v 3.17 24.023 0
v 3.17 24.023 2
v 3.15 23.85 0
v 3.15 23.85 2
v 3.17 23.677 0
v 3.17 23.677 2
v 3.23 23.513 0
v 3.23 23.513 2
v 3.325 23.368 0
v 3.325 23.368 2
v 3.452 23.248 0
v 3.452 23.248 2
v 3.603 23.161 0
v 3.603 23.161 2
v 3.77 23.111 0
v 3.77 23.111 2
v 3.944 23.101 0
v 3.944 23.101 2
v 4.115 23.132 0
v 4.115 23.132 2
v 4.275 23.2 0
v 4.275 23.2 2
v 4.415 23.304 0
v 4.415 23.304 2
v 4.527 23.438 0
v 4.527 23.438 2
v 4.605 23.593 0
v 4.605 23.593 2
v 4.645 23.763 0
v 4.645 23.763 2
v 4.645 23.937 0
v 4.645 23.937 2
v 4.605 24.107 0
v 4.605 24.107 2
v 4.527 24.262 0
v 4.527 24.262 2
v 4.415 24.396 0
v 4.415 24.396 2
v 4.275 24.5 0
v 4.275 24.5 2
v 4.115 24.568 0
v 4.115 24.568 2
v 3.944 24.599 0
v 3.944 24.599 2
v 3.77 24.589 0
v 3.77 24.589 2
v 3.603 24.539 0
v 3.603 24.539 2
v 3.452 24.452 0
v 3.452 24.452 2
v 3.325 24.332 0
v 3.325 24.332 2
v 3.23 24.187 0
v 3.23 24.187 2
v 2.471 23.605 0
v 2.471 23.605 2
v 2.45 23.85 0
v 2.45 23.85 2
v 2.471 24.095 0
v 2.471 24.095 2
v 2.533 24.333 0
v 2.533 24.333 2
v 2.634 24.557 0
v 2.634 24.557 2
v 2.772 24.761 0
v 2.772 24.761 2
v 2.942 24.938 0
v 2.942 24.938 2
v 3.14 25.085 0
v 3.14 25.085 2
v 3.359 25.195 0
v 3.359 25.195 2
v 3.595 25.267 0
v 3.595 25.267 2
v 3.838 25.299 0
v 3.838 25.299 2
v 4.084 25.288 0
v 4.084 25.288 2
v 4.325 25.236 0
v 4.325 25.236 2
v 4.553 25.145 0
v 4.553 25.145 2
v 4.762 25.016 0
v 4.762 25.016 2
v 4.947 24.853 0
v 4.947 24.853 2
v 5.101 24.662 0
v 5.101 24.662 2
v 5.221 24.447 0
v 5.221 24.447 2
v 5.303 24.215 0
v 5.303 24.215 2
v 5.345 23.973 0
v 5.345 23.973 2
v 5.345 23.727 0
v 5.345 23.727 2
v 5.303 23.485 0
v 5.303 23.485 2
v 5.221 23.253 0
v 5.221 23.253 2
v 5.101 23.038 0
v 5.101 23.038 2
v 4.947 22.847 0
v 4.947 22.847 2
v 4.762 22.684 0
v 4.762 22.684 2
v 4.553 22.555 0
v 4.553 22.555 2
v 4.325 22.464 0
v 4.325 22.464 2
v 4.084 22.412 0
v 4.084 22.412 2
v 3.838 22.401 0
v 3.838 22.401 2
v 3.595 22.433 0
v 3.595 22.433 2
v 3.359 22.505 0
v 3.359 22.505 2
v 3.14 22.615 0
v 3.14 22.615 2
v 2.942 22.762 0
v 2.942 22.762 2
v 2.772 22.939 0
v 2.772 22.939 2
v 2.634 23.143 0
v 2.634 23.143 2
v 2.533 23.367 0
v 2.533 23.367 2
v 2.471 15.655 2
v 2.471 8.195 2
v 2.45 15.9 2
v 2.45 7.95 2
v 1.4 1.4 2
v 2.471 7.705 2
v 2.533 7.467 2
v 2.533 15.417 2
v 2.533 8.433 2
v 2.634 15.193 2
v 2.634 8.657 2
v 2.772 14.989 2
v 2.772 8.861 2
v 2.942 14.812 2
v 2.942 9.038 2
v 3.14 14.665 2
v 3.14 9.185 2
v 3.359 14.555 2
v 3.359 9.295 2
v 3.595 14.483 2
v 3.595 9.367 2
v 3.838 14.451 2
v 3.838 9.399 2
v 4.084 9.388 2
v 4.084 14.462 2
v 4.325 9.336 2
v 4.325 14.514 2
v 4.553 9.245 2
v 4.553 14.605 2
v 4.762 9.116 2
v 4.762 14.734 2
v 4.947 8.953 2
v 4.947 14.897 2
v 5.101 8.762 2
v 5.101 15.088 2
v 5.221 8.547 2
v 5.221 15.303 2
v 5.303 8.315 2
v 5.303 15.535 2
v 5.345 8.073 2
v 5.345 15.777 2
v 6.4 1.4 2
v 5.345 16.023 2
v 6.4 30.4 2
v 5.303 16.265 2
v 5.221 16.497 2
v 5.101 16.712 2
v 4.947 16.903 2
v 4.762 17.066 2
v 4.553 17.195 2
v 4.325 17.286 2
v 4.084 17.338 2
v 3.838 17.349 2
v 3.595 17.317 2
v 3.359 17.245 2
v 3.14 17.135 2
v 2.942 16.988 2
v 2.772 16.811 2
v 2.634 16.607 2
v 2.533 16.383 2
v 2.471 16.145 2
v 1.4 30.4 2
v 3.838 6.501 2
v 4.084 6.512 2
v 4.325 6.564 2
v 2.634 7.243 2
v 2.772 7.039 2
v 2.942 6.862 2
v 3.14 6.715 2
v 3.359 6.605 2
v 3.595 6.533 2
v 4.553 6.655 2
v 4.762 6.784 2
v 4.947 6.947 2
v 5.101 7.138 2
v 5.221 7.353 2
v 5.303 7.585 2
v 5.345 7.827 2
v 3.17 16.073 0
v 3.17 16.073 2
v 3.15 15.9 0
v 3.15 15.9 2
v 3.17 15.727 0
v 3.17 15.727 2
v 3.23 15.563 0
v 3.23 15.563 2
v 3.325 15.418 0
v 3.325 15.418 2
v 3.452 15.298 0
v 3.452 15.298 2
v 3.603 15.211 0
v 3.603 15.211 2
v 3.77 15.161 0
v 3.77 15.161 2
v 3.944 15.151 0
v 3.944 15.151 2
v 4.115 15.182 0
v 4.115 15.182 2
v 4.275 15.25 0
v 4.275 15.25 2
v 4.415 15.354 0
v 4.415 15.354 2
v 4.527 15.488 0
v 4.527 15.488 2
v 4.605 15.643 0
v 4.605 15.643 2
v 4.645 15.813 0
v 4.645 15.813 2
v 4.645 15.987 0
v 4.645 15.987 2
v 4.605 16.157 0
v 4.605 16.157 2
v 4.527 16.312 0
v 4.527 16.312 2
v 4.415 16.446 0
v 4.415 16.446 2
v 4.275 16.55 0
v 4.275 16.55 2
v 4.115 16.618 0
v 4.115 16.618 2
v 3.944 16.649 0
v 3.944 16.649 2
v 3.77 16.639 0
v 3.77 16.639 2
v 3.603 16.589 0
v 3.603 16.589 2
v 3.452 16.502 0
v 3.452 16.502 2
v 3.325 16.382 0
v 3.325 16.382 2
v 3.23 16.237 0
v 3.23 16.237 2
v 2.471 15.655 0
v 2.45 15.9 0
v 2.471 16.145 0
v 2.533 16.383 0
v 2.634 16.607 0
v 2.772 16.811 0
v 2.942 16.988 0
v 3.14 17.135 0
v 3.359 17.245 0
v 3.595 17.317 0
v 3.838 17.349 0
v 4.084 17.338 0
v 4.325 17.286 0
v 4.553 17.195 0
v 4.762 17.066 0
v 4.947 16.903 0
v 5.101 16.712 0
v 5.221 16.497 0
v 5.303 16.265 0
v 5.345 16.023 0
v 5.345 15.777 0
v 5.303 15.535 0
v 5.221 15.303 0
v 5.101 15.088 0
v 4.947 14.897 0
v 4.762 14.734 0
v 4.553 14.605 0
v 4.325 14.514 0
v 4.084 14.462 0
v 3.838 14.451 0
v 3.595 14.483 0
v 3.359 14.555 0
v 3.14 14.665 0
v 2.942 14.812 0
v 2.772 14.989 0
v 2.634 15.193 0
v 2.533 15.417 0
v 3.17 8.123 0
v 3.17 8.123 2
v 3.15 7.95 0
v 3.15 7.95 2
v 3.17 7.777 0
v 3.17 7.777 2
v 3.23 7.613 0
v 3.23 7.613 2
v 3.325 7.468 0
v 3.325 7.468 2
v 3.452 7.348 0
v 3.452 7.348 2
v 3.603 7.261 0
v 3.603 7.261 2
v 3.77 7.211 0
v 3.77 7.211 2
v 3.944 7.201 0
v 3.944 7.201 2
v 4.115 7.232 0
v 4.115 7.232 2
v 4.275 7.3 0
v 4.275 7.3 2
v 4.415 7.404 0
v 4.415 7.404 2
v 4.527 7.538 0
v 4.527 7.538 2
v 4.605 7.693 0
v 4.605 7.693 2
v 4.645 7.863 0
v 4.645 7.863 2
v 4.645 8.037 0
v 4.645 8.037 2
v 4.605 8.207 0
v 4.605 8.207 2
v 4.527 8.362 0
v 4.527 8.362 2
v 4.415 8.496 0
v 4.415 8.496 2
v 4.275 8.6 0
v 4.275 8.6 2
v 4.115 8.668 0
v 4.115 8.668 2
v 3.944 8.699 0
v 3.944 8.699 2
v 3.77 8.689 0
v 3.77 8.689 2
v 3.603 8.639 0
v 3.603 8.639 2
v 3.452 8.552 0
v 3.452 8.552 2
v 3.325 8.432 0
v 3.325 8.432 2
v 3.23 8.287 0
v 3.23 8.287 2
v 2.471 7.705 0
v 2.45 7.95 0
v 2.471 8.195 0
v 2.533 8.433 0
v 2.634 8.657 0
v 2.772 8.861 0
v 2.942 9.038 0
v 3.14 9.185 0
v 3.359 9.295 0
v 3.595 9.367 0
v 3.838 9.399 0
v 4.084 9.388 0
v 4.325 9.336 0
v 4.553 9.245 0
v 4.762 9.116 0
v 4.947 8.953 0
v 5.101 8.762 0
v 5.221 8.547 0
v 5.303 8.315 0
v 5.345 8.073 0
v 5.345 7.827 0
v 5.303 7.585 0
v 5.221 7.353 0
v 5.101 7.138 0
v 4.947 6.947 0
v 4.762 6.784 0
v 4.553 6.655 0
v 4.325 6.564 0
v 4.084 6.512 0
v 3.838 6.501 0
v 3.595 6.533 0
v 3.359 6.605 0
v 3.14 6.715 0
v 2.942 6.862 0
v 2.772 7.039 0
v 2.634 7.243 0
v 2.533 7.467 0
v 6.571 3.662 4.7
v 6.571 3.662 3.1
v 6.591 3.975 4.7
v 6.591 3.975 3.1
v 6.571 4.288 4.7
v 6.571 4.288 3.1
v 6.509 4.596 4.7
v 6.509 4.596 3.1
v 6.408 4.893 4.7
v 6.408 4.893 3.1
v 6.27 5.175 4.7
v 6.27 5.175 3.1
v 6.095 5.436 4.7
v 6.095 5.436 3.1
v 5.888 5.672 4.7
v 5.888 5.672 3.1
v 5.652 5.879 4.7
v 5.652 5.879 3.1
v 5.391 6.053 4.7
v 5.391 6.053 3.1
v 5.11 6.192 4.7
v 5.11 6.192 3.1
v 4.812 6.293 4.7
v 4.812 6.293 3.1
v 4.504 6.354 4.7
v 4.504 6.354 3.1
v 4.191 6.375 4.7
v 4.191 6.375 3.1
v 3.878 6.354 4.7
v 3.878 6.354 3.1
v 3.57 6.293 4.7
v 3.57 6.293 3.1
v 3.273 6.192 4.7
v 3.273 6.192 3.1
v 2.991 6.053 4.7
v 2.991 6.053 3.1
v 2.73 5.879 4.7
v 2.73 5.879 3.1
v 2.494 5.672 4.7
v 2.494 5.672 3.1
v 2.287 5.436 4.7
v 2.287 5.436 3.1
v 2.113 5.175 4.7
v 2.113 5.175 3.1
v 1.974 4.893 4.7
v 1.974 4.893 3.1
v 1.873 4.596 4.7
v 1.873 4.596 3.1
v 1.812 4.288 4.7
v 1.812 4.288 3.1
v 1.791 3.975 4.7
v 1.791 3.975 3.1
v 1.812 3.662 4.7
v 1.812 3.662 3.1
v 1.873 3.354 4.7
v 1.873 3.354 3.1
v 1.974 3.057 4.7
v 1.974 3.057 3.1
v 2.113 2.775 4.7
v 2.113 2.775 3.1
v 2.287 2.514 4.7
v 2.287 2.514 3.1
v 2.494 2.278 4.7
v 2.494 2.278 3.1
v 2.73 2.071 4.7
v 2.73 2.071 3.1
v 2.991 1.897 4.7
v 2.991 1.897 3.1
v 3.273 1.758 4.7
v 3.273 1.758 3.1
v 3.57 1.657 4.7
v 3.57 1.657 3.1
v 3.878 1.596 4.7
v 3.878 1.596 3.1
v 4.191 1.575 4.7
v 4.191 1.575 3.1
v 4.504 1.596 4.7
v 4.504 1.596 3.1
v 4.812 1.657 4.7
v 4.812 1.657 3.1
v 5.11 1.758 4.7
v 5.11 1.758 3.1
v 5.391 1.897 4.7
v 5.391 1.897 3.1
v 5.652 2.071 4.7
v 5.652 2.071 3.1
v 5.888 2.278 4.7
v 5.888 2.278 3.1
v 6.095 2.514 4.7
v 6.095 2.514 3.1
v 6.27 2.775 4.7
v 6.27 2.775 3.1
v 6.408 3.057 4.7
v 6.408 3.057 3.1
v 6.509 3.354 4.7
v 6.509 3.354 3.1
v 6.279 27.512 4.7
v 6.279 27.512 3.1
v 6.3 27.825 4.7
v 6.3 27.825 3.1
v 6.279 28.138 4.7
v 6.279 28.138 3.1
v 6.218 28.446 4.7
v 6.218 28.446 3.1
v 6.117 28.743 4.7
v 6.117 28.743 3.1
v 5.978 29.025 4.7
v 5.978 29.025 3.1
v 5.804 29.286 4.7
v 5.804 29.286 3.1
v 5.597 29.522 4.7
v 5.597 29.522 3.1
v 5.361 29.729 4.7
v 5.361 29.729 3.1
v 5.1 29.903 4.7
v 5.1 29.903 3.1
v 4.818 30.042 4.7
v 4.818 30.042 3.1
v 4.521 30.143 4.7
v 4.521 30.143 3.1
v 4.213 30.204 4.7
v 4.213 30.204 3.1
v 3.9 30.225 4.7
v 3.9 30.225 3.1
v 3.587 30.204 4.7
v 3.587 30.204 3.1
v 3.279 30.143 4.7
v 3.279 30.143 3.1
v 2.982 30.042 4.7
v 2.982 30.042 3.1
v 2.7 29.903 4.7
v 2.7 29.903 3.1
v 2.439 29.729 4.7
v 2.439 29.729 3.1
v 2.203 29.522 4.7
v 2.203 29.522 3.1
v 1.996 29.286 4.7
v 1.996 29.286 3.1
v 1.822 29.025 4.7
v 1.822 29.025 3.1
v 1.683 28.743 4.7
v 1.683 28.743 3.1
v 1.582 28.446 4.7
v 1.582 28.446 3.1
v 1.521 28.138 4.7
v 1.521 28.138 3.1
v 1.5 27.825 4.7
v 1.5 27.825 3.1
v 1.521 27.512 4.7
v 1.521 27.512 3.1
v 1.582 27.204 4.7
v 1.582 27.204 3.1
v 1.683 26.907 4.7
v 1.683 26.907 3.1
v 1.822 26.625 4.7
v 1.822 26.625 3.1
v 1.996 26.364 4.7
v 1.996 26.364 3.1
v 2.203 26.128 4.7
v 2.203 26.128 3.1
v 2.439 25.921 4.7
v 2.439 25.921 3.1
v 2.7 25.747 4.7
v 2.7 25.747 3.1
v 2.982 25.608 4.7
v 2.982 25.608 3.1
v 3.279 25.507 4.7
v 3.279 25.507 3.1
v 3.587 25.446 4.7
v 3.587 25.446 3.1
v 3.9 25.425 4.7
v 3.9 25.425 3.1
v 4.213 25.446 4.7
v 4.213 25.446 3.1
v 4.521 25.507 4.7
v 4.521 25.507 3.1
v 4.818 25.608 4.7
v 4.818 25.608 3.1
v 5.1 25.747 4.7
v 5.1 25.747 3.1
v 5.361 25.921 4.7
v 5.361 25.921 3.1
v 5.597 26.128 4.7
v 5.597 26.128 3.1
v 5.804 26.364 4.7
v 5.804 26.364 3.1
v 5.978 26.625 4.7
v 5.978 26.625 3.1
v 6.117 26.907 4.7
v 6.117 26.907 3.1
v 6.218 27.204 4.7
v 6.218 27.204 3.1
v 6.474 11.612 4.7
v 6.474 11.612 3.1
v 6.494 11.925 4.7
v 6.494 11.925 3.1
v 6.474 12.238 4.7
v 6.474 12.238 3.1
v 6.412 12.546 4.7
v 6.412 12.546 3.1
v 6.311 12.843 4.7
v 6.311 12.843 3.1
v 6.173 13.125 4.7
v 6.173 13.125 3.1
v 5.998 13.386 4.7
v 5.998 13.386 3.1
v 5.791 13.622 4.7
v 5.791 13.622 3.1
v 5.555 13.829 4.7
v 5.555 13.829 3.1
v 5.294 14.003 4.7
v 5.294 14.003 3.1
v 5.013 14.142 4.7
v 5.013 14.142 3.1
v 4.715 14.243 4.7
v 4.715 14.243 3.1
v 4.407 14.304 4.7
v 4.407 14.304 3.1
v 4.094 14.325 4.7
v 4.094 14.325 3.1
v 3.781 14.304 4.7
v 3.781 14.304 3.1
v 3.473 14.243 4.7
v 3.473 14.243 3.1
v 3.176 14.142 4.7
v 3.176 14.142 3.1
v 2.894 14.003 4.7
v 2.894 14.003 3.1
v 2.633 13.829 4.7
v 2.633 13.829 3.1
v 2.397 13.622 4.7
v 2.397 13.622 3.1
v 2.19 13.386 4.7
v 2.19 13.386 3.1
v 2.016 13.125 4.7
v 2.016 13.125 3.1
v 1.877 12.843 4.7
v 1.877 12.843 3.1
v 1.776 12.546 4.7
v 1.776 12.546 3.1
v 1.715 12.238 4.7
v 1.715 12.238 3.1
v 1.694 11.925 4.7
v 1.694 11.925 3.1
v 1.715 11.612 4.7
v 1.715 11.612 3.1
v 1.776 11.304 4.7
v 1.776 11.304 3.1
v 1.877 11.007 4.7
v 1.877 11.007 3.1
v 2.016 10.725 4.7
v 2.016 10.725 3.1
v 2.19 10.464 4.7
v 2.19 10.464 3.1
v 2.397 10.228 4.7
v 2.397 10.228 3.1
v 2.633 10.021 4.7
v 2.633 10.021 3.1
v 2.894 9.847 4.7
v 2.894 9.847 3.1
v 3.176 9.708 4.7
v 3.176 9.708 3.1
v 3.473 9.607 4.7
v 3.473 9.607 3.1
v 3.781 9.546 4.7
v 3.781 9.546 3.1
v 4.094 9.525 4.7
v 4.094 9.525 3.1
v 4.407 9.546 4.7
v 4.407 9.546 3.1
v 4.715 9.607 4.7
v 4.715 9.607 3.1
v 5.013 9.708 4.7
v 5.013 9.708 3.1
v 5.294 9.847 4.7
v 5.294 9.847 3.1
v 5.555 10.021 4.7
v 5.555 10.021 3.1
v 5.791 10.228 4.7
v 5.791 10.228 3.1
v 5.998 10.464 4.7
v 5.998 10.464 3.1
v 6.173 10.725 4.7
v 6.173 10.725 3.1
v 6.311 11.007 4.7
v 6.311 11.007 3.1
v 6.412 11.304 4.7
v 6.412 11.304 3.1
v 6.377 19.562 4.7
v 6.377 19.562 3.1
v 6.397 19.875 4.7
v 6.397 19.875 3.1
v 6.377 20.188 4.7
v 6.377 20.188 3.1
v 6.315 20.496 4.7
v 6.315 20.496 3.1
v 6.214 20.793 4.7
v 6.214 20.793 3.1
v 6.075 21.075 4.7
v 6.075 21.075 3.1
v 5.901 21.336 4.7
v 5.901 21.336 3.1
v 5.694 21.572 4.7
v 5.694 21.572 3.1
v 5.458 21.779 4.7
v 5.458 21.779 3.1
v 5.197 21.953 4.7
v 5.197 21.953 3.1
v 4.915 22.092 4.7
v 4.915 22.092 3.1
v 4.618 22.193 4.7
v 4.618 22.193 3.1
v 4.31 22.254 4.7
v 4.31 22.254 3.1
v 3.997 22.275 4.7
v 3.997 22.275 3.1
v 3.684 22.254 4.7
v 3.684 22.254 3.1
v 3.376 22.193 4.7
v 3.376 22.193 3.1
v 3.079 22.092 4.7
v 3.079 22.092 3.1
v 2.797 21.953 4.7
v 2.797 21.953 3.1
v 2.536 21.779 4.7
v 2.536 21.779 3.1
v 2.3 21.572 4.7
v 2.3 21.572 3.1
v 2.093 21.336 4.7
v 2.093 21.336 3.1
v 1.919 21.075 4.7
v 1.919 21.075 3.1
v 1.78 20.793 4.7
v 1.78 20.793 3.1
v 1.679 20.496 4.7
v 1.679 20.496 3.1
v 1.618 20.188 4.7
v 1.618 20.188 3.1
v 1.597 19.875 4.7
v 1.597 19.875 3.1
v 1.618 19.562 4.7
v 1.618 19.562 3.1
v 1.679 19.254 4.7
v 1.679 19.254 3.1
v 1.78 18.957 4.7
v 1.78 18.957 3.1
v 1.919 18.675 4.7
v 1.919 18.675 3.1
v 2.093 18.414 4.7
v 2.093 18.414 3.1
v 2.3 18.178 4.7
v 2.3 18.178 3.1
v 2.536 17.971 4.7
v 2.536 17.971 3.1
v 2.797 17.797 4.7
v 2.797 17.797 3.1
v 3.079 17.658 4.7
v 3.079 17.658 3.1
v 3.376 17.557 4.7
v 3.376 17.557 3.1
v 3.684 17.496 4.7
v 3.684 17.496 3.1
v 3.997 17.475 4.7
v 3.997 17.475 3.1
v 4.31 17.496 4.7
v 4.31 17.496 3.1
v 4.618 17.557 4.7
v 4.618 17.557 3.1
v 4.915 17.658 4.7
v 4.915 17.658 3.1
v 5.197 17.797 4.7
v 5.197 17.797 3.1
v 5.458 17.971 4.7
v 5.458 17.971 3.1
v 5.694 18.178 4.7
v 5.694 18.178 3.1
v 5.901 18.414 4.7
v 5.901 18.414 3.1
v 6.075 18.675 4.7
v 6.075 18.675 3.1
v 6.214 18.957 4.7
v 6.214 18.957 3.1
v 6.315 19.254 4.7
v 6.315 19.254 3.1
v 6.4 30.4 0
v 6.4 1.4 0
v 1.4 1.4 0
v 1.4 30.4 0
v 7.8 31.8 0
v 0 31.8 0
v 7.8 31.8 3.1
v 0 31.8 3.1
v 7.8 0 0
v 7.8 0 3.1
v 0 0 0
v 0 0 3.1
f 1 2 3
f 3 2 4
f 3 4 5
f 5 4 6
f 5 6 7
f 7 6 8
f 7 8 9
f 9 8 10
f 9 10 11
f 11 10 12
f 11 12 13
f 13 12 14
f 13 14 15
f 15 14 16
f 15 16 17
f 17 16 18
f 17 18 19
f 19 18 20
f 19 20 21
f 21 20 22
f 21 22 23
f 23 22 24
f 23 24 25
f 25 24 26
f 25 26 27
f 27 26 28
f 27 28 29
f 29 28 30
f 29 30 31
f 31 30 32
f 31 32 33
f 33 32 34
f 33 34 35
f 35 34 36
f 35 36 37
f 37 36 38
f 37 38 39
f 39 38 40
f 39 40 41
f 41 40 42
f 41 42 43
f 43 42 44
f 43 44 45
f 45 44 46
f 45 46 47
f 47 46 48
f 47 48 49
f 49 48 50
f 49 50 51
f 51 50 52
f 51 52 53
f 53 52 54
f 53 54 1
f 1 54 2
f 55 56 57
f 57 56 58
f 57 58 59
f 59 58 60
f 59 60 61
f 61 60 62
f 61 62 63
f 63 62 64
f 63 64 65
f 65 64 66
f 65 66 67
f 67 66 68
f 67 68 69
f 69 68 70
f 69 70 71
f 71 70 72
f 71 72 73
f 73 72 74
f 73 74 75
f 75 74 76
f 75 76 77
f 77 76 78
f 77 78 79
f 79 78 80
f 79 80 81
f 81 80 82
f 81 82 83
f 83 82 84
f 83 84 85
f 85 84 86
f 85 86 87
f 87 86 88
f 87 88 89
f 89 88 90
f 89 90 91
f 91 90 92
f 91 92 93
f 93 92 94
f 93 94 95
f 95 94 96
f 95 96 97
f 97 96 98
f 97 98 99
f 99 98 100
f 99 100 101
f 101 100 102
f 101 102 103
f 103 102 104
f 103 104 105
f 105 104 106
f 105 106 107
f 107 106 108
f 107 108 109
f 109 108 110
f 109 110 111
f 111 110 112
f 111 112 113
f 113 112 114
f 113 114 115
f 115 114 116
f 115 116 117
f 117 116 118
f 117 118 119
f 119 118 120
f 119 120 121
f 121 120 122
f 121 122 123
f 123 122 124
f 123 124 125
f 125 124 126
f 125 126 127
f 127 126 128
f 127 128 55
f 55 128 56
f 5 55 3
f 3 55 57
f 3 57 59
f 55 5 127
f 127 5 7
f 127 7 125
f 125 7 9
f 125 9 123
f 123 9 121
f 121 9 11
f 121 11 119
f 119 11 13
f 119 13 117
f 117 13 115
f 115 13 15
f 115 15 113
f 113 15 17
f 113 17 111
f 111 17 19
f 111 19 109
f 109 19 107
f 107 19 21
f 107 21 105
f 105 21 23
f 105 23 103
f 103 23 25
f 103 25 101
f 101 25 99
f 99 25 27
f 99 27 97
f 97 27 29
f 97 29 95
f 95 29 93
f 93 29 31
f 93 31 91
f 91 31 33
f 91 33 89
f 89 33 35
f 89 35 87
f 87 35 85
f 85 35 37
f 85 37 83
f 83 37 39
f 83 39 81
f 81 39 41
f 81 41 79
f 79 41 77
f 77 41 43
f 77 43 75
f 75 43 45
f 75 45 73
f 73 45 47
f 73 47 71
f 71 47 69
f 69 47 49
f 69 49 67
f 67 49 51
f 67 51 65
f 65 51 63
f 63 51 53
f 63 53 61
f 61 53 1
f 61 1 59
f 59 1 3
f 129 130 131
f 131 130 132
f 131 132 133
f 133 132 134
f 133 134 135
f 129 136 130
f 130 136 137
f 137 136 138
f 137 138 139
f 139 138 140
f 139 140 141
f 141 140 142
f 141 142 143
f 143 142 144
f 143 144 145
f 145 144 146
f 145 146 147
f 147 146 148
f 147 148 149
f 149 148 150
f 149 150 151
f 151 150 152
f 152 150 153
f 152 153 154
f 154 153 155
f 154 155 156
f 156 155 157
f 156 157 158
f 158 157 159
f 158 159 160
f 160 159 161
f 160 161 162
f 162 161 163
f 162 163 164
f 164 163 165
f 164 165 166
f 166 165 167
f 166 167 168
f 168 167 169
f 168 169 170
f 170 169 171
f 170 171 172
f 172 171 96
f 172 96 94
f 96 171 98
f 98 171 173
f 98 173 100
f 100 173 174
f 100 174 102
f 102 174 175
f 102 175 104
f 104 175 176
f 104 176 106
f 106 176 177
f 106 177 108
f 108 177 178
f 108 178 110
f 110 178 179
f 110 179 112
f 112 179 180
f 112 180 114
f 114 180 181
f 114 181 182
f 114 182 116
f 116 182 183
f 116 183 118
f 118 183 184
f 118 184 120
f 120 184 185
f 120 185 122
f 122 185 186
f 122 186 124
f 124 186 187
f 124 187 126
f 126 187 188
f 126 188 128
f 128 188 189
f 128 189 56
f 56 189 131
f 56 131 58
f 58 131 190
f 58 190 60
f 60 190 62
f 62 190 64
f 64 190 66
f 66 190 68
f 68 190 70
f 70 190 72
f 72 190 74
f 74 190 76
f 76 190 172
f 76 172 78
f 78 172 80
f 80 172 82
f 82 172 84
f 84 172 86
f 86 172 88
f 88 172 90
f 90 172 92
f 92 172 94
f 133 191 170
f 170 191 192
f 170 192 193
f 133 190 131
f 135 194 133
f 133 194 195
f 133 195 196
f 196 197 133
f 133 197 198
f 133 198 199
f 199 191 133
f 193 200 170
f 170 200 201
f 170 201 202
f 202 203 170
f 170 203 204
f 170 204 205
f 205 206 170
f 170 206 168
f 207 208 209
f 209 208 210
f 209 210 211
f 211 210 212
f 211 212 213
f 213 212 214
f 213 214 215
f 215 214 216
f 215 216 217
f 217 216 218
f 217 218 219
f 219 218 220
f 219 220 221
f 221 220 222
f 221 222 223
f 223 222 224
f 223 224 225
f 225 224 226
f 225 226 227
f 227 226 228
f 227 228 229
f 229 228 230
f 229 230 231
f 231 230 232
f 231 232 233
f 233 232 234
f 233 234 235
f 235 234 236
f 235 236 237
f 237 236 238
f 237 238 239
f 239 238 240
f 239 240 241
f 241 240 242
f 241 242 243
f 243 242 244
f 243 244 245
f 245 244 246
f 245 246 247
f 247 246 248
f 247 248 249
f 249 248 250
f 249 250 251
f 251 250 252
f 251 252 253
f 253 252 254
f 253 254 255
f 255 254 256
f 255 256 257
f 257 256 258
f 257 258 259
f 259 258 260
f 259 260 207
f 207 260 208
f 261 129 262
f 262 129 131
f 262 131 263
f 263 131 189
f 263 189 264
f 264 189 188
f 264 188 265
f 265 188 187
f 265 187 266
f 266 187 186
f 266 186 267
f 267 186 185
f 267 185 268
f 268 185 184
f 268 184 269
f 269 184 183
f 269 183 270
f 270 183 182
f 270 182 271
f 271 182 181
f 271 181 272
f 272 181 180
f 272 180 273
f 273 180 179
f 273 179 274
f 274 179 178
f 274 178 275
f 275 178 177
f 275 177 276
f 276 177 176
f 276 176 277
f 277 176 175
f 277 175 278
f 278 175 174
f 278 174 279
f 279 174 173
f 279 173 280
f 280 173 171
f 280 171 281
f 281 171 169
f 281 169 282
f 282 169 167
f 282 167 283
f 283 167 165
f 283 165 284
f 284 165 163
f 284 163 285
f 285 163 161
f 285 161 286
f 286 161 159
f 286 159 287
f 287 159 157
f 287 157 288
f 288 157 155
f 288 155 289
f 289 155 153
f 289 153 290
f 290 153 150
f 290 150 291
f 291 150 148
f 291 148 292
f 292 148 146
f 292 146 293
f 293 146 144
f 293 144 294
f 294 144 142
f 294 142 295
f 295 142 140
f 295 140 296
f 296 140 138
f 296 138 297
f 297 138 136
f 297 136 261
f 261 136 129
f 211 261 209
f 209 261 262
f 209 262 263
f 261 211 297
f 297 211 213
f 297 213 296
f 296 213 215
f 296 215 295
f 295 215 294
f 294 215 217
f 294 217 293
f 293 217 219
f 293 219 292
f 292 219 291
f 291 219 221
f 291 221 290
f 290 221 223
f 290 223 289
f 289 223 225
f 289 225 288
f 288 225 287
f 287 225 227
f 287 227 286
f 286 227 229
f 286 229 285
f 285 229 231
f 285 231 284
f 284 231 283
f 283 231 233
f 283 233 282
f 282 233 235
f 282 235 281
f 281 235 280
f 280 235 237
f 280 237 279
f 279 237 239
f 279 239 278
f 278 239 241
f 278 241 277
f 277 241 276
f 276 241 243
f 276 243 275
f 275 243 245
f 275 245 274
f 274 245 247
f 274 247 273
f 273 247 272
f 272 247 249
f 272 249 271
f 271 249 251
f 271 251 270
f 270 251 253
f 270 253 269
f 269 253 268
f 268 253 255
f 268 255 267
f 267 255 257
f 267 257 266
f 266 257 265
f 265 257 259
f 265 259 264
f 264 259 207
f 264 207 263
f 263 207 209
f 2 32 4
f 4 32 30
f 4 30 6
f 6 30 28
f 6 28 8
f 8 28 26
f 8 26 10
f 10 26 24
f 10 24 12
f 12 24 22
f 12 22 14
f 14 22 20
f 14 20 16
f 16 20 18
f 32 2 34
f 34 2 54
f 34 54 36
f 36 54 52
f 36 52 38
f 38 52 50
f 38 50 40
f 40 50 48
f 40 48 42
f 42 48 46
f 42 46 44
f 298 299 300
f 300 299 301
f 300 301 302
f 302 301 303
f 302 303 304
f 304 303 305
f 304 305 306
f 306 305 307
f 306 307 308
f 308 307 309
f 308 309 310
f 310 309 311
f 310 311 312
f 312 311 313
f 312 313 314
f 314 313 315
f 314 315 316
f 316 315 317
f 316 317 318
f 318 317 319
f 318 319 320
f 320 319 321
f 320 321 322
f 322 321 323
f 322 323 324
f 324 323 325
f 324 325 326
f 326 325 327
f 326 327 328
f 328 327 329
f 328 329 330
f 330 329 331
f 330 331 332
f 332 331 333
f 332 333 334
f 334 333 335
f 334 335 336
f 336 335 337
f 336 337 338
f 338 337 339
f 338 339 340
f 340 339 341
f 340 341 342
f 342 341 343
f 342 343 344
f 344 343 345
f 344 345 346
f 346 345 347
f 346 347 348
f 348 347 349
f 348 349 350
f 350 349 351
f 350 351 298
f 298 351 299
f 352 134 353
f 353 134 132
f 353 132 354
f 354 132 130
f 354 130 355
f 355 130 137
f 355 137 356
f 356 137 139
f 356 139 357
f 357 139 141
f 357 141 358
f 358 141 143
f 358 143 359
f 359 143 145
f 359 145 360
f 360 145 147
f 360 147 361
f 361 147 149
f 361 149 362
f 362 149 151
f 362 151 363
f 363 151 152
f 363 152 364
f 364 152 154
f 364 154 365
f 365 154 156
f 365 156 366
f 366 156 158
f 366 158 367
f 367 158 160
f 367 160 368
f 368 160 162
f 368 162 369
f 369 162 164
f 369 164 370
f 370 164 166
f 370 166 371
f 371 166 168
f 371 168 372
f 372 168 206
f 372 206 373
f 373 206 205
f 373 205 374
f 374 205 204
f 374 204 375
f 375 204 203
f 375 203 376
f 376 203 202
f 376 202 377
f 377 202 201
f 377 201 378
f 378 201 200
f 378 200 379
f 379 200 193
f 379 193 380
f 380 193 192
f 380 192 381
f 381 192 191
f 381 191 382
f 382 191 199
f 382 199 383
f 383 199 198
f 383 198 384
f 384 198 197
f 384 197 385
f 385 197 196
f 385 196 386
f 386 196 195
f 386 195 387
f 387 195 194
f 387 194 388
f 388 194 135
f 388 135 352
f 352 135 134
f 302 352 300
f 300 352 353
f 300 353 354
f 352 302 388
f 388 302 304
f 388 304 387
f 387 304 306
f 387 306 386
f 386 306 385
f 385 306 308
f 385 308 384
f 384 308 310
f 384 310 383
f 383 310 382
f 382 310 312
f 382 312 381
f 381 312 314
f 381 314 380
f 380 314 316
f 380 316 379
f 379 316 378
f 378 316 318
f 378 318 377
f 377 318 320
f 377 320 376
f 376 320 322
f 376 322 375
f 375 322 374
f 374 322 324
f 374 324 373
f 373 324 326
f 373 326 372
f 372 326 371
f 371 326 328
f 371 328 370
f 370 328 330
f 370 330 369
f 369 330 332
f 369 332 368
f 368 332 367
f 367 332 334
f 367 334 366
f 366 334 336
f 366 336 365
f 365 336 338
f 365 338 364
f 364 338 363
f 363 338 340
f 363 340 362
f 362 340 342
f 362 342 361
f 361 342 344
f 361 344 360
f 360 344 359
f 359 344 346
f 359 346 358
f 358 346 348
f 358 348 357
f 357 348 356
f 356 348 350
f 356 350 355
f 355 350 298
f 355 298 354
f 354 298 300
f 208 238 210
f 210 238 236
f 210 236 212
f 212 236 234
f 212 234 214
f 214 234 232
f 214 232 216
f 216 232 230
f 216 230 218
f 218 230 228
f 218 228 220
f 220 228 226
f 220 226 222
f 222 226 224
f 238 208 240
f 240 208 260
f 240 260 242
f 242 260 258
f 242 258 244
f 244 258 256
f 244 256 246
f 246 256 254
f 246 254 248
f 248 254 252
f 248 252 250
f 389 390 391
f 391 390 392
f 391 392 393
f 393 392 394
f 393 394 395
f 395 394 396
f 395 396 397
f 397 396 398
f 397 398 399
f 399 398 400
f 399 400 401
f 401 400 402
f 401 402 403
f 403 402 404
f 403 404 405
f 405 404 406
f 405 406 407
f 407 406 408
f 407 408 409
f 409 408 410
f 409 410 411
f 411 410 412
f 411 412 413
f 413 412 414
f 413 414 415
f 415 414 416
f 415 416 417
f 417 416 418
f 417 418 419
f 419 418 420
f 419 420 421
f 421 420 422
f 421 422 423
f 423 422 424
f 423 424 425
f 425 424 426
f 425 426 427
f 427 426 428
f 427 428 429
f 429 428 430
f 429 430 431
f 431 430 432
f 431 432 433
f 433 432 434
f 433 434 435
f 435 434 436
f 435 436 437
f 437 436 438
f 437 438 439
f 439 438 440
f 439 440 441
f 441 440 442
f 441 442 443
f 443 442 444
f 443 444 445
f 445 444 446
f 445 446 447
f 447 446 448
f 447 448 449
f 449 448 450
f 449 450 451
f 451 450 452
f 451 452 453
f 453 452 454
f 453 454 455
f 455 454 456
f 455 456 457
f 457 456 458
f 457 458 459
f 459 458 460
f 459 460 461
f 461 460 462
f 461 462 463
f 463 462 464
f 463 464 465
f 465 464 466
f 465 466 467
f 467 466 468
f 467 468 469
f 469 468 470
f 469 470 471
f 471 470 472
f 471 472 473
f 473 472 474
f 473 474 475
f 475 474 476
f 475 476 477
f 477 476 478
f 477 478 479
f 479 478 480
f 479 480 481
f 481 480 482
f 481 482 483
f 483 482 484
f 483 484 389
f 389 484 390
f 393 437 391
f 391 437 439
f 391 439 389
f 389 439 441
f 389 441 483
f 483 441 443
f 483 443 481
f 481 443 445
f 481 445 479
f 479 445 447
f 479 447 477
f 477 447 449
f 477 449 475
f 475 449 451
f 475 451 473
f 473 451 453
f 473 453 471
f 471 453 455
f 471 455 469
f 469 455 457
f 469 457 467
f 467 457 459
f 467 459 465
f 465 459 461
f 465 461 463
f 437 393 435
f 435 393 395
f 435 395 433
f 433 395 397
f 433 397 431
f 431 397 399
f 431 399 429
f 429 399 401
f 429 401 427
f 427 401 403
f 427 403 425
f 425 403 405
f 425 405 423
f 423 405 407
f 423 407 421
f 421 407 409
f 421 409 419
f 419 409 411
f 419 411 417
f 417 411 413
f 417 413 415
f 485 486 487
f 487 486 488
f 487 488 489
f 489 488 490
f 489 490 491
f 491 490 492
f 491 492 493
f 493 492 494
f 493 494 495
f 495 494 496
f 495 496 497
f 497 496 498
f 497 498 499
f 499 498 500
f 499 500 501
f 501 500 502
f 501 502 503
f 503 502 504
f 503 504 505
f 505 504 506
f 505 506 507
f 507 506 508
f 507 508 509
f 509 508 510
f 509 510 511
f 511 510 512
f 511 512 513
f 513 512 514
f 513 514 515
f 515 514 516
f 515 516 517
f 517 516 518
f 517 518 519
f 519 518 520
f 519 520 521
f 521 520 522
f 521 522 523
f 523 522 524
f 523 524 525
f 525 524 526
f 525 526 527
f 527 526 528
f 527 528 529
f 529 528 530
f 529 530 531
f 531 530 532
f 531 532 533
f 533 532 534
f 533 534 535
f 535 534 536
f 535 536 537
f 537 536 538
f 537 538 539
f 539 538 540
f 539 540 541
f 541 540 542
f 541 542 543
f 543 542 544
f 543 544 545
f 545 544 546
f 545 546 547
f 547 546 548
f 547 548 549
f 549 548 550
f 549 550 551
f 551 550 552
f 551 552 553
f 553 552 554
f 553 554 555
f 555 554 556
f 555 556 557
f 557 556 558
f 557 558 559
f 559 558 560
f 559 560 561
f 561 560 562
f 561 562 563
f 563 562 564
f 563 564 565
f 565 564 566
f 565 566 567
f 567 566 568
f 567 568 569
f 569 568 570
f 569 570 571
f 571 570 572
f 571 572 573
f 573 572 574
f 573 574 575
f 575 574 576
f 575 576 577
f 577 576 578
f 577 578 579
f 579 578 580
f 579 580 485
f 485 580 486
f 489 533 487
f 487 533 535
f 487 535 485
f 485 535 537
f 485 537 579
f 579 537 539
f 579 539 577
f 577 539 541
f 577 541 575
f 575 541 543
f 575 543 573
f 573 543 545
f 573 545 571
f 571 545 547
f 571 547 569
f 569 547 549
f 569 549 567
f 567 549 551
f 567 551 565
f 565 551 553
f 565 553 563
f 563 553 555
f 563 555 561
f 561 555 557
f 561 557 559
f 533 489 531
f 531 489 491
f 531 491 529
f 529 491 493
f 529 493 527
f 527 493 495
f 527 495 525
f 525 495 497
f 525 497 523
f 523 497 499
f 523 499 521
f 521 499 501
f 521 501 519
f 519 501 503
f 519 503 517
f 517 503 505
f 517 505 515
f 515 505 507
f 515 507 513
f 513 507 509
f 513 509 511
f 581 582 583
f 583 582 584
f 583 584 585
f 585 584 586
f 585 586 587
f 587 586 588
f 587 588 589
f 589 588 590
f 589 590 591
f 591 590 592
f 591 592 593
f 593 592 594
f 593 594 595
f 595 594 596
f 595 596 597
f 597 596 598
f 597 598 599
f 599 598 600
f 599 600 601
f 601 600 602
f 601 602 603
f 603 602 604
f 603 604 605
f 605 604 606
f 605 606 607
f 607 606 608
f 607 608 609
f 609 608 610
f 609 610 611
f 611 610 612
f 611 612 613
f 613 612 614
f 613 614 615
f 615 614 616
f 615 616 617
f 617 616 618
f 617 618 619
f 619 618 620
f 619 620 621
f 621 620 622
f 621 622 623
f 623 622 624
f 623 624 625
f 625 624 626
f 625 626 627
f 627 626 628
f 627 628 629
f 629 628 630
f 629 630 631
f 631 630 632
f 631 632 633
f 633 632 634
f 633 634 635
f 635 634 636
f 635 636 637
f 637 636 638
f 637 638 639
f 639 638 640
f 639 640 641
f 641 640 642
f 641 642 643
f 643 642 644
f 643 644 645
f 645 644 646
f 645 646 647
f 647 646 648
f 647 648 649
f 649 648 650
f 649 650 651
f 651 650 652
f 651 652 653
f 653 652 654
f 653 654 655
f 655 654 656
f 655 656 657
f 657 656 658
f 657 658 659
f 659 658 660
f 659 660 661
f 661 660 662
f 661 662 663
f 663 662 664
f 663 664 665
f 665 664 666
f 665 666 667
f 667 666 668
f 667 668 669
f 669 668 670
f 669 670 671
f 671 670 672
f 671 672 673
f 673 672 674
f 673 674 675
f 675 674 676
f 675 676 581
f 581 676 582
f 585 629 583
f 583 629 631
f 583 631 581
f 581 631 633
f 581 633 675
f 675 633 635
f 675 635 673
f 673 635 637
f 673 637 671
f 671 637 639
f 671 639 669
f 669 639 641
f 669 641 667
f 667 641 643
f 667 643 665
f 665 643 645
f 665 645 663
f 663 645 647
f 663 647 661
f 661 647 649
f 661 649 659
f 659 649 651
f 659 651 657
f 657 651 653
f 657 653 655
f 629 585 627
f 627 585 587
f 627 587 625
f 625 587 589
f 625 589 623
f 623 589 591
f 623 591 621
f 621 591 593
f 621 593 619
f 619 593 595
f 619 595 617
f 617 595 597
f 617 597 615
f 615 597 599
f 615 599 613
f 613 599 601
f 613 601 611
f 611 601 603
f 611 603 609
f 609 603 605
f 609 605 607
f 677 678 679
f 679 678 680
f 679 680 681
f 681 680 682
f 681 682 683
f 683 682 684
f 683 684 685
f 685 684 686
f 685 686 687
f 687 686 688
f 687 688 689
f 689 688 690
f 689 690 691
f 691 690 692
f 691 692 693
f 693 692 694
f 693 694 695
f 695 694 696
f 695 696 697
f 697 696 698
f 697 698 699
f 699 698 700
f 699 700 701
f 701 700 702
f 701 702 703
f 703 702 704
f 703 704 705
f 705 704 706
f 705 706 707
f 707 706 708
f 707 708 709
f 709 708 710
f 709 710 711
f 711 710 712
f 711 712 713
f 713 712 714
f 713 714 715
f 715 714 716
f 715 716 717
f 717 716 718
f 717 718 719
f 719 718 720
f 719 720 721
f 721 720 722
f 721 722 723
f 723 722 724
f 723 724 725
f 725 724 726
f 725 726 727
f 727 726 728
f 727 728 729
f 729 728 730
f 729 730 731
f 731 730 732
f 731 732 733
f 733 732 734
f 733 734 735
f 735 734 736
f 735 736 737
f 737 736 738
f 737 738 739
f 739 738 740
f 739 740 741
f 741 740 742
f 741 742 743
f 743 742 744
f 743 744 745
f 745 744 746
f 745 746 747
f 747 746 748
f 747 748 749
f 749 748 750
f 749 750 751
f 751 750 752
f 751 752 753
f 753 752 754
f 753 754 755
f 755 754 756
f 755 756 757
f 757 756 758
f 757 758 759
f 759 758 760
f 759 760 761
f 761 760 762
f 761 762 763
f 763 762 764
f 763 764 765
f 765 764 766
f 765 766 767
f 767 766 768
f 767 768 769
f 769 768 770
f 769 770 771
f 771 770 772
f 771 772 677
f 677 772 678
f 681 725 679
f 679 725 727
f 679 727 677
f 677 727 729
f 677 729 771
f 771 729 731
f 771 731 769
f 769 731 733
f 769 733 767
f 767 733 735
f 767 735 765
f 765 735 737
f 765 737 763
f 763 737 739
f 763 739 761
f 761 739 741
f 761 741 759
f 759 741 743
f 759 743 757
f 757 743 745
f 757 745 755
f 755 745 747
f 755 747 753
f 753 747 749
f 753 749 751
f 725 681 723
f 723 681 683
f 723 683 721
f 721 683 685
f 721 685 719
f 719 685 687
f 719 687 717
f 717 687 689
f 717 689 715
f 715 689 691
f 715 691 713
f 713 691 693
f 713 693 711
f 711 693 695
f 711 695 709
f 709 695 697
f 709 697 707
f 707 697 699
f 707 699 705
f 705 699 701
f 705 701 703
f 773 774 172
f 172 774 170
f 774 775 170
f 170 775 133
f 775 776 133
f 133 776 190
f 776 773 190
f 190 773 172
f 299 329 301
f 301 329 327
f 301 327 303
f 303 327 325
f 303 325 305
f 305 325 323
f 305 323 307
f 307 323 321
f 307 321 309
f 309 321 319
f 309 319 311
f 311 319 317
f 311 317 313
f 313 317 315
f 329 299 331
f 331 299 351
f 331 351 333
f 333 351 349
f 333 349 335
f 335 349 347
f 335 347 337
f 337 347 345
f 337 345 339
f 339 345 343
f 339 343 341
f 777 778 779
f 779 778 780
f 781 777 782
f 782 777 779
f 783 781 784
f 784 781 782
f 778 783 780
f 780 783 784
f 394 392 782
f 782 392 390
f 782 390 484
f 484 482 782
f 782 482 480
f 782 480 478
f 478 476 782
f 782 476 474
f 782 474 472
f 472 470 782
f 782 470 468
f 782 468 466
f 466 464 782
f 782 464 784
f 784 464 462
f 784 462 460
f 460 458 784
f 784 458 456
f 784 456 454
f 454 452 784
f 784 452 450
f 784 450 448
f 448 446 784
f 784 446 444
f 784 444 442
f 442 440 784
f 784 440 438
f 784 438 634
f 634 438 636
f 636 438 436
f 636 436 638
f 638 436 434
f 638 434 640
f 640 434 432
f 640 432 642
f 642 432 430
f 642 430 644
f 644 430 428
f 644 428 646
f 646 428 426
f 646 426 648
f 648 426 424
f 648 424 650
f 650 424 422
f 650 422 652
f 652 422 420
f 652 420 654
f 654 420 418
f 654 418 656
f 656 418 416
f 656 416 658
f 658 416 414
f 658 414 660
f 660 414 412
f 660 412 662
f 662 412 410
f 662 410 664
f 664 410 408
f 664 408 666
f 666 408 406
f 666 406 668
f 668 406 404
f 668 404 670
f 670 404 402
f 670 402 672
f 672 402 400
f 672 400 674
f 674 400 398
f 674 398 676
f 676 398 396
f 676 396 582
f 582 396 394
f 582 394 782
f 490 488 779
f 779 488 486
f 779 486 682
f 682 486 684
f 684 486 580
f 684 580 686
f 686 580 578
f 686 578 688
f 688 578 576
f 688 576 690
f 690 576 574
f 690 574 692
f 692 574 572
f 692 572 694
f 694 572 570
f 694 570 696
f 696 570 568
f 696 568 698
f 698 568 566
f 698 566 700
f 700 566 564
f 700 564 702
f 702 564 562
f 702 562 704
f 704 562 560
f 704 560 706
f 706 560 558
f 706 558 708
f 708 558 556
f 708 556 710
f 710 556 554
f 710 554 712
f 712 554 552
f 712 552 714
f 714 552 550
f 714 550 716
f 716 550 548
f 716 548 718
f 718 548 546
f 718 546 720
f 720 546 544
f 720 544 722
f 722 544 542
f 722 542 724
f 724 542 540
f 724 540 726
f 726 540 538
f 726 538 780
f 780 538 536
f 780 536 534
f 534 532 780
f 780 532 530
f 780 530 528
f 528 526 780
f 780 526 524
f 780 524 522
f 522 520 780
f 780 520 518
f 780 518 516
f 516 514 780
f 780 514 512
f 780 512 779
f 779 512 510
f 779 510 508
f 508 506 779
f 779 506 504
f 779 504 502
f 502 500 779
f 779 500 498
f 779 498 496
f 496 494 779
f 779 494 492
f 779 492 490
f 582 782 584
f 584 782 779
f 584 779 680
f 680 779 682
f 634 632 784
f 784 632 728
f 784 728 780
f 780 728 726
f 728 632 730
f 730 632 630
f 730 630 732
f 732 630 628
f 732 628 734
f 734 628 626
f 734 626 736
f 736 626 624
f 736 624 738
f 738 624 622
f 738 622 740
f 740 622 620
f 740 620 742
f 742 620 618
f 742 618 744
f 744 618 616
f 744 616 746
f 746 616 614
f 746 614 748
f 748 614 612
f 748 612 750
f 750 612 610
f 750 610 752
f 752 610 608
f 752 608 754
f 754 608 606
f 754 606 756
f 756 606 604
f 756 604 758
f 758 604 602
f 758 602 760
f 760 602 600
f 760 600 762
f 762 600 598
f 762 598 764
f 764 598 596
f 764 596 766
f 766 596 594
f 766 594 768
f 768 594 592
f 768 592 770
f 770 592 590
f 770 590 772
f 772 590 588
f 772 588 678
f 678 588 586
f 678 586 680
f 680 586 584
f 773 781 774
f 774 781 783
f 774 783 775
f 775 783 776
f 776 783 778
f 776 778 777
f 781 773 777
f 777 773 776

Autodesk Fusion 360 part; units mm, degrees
sketch "Sketch1" plane through (0, 0, 0) normal (0, 0, 1) x (1, 0, 0)
  line L0 (0, 0) -> (7.8, 0)
  line L1 (7.8, 0) -> (7.8, 31.8)
  line L2 (7.8, 31.8) -> (0, 31.8)
  line L3 (0, 31.8) -> (0, 0)
  dimension "d1" = 7.8
  dimension "d2" = 31.8
extrude "Extrude1" add sketch "Sketch1" along normal blind 3.1
sketch "Sketch2" plane through (0, 0, 0) normal (0, 0, -1) x (1, 0, 0)
  line L0 (0, 0) -> (0, -31.8)
  line L1 (0, -31.8) -> (7.8, -31.8)
  line L2 (7.8, -31.8) -> (7.8, 0)
  line L3 (7.8, 0) -> (0, 0)
  line L4 (1.4, -1.4) -> (6.4, -1.4)
  line L5 (6.4, -1.4) -> (6.4, -30.4)
  line L6 (6.4, -30.4) -> (1.4, -30.4)
  line L7 (1.4, -30.4) -> (1.4, -1.4)
  dimension "d5" = 1.4
  dimension "d6" = 1.4
  dimension "d7" = 1.4
  dimension "d8" = 1.4
extrude "Extrude2" cut sketch "Sketch2" against normal blind 2 contours L4 L5 L6 L7
sketch "Sketch3" plane through (0, 0, 3.1) normal (0, 0, 1) x (-1, 0, 0)
  line L0 (0, -31.8) -> (0, 0)
  line L1 (0, 0) -> (-7.8, 0)
  line L2 (-7.8, 0) -> (-7.8, -31.8)
  line L3 (-7.8, -31.8) -> (0, -31.8)
  circle A0 centre (-3.9, -27.825) radius 2.4
  circle A1 centre (-3.997, -19.875) radius 2.4
  circle A2 centre (-4.0941, -11.925) radius 2.4
  circle A3 centre (-4.1911, -3.975) radius 2.4
  dimension "d11" = 4.8
  dimension "d12" = 4.8
  dimension "d13" = 4.8
  dimension "d14" = 4.8
  dimension "d15" = 3.9
  dimension "d16" = 7.95
  dimension "d17" = 7.95
  dimension "d18" = 7.95
  dimension "d19" = 3.975
extrude "Extrude3" add sketch "Sketch3" along normal blind 1.6 contours A0 | A1 | A2 | A3
sketch "Sketch4" plane through (0, 0, 2) normal (0, 0, -1) x (1, 0, 0)
  line L0 (1.4, -30.4) -> (6.4, -30.4)
  line L1 (6.4, -30.4) -> (6.4, -1.4)
  line L2 (6.4, -1.4) -> (1.4, -1.4)
  line L3 (1.4, -1.4) -> (1.4, -30.4)
  circle A0 centre (3.9, -7.95) radius 1.45
  circle A1 centre (3.9, -15.9) radius 1.45
  circle A2 centre (3.9, -23.85) radius 1.45
  circle A3 centre (3.9, -7.95) radius 0.75
  circle A4 centre (3.9, -15.9) radius 0.75
  circle A5 centre (3.9, -23.85) radius 0.75
  dimension "d22" = 2.9
  dimension "d23" = 2.9
  dimension "d24" = 2.9
  dimension "d28" = 7.95
  dimension "d29" = 7.95
  dimension "d30" = 7.95
  dimension "d31" = 3.9
  dimension "d32" = 1.5
  dimension "d33" = 1.5
  dimension "d34" = 1.5
extrude "Extrude4" add sketch "Sketch4" along normal blind 2 contours A0 | A1 | A2
